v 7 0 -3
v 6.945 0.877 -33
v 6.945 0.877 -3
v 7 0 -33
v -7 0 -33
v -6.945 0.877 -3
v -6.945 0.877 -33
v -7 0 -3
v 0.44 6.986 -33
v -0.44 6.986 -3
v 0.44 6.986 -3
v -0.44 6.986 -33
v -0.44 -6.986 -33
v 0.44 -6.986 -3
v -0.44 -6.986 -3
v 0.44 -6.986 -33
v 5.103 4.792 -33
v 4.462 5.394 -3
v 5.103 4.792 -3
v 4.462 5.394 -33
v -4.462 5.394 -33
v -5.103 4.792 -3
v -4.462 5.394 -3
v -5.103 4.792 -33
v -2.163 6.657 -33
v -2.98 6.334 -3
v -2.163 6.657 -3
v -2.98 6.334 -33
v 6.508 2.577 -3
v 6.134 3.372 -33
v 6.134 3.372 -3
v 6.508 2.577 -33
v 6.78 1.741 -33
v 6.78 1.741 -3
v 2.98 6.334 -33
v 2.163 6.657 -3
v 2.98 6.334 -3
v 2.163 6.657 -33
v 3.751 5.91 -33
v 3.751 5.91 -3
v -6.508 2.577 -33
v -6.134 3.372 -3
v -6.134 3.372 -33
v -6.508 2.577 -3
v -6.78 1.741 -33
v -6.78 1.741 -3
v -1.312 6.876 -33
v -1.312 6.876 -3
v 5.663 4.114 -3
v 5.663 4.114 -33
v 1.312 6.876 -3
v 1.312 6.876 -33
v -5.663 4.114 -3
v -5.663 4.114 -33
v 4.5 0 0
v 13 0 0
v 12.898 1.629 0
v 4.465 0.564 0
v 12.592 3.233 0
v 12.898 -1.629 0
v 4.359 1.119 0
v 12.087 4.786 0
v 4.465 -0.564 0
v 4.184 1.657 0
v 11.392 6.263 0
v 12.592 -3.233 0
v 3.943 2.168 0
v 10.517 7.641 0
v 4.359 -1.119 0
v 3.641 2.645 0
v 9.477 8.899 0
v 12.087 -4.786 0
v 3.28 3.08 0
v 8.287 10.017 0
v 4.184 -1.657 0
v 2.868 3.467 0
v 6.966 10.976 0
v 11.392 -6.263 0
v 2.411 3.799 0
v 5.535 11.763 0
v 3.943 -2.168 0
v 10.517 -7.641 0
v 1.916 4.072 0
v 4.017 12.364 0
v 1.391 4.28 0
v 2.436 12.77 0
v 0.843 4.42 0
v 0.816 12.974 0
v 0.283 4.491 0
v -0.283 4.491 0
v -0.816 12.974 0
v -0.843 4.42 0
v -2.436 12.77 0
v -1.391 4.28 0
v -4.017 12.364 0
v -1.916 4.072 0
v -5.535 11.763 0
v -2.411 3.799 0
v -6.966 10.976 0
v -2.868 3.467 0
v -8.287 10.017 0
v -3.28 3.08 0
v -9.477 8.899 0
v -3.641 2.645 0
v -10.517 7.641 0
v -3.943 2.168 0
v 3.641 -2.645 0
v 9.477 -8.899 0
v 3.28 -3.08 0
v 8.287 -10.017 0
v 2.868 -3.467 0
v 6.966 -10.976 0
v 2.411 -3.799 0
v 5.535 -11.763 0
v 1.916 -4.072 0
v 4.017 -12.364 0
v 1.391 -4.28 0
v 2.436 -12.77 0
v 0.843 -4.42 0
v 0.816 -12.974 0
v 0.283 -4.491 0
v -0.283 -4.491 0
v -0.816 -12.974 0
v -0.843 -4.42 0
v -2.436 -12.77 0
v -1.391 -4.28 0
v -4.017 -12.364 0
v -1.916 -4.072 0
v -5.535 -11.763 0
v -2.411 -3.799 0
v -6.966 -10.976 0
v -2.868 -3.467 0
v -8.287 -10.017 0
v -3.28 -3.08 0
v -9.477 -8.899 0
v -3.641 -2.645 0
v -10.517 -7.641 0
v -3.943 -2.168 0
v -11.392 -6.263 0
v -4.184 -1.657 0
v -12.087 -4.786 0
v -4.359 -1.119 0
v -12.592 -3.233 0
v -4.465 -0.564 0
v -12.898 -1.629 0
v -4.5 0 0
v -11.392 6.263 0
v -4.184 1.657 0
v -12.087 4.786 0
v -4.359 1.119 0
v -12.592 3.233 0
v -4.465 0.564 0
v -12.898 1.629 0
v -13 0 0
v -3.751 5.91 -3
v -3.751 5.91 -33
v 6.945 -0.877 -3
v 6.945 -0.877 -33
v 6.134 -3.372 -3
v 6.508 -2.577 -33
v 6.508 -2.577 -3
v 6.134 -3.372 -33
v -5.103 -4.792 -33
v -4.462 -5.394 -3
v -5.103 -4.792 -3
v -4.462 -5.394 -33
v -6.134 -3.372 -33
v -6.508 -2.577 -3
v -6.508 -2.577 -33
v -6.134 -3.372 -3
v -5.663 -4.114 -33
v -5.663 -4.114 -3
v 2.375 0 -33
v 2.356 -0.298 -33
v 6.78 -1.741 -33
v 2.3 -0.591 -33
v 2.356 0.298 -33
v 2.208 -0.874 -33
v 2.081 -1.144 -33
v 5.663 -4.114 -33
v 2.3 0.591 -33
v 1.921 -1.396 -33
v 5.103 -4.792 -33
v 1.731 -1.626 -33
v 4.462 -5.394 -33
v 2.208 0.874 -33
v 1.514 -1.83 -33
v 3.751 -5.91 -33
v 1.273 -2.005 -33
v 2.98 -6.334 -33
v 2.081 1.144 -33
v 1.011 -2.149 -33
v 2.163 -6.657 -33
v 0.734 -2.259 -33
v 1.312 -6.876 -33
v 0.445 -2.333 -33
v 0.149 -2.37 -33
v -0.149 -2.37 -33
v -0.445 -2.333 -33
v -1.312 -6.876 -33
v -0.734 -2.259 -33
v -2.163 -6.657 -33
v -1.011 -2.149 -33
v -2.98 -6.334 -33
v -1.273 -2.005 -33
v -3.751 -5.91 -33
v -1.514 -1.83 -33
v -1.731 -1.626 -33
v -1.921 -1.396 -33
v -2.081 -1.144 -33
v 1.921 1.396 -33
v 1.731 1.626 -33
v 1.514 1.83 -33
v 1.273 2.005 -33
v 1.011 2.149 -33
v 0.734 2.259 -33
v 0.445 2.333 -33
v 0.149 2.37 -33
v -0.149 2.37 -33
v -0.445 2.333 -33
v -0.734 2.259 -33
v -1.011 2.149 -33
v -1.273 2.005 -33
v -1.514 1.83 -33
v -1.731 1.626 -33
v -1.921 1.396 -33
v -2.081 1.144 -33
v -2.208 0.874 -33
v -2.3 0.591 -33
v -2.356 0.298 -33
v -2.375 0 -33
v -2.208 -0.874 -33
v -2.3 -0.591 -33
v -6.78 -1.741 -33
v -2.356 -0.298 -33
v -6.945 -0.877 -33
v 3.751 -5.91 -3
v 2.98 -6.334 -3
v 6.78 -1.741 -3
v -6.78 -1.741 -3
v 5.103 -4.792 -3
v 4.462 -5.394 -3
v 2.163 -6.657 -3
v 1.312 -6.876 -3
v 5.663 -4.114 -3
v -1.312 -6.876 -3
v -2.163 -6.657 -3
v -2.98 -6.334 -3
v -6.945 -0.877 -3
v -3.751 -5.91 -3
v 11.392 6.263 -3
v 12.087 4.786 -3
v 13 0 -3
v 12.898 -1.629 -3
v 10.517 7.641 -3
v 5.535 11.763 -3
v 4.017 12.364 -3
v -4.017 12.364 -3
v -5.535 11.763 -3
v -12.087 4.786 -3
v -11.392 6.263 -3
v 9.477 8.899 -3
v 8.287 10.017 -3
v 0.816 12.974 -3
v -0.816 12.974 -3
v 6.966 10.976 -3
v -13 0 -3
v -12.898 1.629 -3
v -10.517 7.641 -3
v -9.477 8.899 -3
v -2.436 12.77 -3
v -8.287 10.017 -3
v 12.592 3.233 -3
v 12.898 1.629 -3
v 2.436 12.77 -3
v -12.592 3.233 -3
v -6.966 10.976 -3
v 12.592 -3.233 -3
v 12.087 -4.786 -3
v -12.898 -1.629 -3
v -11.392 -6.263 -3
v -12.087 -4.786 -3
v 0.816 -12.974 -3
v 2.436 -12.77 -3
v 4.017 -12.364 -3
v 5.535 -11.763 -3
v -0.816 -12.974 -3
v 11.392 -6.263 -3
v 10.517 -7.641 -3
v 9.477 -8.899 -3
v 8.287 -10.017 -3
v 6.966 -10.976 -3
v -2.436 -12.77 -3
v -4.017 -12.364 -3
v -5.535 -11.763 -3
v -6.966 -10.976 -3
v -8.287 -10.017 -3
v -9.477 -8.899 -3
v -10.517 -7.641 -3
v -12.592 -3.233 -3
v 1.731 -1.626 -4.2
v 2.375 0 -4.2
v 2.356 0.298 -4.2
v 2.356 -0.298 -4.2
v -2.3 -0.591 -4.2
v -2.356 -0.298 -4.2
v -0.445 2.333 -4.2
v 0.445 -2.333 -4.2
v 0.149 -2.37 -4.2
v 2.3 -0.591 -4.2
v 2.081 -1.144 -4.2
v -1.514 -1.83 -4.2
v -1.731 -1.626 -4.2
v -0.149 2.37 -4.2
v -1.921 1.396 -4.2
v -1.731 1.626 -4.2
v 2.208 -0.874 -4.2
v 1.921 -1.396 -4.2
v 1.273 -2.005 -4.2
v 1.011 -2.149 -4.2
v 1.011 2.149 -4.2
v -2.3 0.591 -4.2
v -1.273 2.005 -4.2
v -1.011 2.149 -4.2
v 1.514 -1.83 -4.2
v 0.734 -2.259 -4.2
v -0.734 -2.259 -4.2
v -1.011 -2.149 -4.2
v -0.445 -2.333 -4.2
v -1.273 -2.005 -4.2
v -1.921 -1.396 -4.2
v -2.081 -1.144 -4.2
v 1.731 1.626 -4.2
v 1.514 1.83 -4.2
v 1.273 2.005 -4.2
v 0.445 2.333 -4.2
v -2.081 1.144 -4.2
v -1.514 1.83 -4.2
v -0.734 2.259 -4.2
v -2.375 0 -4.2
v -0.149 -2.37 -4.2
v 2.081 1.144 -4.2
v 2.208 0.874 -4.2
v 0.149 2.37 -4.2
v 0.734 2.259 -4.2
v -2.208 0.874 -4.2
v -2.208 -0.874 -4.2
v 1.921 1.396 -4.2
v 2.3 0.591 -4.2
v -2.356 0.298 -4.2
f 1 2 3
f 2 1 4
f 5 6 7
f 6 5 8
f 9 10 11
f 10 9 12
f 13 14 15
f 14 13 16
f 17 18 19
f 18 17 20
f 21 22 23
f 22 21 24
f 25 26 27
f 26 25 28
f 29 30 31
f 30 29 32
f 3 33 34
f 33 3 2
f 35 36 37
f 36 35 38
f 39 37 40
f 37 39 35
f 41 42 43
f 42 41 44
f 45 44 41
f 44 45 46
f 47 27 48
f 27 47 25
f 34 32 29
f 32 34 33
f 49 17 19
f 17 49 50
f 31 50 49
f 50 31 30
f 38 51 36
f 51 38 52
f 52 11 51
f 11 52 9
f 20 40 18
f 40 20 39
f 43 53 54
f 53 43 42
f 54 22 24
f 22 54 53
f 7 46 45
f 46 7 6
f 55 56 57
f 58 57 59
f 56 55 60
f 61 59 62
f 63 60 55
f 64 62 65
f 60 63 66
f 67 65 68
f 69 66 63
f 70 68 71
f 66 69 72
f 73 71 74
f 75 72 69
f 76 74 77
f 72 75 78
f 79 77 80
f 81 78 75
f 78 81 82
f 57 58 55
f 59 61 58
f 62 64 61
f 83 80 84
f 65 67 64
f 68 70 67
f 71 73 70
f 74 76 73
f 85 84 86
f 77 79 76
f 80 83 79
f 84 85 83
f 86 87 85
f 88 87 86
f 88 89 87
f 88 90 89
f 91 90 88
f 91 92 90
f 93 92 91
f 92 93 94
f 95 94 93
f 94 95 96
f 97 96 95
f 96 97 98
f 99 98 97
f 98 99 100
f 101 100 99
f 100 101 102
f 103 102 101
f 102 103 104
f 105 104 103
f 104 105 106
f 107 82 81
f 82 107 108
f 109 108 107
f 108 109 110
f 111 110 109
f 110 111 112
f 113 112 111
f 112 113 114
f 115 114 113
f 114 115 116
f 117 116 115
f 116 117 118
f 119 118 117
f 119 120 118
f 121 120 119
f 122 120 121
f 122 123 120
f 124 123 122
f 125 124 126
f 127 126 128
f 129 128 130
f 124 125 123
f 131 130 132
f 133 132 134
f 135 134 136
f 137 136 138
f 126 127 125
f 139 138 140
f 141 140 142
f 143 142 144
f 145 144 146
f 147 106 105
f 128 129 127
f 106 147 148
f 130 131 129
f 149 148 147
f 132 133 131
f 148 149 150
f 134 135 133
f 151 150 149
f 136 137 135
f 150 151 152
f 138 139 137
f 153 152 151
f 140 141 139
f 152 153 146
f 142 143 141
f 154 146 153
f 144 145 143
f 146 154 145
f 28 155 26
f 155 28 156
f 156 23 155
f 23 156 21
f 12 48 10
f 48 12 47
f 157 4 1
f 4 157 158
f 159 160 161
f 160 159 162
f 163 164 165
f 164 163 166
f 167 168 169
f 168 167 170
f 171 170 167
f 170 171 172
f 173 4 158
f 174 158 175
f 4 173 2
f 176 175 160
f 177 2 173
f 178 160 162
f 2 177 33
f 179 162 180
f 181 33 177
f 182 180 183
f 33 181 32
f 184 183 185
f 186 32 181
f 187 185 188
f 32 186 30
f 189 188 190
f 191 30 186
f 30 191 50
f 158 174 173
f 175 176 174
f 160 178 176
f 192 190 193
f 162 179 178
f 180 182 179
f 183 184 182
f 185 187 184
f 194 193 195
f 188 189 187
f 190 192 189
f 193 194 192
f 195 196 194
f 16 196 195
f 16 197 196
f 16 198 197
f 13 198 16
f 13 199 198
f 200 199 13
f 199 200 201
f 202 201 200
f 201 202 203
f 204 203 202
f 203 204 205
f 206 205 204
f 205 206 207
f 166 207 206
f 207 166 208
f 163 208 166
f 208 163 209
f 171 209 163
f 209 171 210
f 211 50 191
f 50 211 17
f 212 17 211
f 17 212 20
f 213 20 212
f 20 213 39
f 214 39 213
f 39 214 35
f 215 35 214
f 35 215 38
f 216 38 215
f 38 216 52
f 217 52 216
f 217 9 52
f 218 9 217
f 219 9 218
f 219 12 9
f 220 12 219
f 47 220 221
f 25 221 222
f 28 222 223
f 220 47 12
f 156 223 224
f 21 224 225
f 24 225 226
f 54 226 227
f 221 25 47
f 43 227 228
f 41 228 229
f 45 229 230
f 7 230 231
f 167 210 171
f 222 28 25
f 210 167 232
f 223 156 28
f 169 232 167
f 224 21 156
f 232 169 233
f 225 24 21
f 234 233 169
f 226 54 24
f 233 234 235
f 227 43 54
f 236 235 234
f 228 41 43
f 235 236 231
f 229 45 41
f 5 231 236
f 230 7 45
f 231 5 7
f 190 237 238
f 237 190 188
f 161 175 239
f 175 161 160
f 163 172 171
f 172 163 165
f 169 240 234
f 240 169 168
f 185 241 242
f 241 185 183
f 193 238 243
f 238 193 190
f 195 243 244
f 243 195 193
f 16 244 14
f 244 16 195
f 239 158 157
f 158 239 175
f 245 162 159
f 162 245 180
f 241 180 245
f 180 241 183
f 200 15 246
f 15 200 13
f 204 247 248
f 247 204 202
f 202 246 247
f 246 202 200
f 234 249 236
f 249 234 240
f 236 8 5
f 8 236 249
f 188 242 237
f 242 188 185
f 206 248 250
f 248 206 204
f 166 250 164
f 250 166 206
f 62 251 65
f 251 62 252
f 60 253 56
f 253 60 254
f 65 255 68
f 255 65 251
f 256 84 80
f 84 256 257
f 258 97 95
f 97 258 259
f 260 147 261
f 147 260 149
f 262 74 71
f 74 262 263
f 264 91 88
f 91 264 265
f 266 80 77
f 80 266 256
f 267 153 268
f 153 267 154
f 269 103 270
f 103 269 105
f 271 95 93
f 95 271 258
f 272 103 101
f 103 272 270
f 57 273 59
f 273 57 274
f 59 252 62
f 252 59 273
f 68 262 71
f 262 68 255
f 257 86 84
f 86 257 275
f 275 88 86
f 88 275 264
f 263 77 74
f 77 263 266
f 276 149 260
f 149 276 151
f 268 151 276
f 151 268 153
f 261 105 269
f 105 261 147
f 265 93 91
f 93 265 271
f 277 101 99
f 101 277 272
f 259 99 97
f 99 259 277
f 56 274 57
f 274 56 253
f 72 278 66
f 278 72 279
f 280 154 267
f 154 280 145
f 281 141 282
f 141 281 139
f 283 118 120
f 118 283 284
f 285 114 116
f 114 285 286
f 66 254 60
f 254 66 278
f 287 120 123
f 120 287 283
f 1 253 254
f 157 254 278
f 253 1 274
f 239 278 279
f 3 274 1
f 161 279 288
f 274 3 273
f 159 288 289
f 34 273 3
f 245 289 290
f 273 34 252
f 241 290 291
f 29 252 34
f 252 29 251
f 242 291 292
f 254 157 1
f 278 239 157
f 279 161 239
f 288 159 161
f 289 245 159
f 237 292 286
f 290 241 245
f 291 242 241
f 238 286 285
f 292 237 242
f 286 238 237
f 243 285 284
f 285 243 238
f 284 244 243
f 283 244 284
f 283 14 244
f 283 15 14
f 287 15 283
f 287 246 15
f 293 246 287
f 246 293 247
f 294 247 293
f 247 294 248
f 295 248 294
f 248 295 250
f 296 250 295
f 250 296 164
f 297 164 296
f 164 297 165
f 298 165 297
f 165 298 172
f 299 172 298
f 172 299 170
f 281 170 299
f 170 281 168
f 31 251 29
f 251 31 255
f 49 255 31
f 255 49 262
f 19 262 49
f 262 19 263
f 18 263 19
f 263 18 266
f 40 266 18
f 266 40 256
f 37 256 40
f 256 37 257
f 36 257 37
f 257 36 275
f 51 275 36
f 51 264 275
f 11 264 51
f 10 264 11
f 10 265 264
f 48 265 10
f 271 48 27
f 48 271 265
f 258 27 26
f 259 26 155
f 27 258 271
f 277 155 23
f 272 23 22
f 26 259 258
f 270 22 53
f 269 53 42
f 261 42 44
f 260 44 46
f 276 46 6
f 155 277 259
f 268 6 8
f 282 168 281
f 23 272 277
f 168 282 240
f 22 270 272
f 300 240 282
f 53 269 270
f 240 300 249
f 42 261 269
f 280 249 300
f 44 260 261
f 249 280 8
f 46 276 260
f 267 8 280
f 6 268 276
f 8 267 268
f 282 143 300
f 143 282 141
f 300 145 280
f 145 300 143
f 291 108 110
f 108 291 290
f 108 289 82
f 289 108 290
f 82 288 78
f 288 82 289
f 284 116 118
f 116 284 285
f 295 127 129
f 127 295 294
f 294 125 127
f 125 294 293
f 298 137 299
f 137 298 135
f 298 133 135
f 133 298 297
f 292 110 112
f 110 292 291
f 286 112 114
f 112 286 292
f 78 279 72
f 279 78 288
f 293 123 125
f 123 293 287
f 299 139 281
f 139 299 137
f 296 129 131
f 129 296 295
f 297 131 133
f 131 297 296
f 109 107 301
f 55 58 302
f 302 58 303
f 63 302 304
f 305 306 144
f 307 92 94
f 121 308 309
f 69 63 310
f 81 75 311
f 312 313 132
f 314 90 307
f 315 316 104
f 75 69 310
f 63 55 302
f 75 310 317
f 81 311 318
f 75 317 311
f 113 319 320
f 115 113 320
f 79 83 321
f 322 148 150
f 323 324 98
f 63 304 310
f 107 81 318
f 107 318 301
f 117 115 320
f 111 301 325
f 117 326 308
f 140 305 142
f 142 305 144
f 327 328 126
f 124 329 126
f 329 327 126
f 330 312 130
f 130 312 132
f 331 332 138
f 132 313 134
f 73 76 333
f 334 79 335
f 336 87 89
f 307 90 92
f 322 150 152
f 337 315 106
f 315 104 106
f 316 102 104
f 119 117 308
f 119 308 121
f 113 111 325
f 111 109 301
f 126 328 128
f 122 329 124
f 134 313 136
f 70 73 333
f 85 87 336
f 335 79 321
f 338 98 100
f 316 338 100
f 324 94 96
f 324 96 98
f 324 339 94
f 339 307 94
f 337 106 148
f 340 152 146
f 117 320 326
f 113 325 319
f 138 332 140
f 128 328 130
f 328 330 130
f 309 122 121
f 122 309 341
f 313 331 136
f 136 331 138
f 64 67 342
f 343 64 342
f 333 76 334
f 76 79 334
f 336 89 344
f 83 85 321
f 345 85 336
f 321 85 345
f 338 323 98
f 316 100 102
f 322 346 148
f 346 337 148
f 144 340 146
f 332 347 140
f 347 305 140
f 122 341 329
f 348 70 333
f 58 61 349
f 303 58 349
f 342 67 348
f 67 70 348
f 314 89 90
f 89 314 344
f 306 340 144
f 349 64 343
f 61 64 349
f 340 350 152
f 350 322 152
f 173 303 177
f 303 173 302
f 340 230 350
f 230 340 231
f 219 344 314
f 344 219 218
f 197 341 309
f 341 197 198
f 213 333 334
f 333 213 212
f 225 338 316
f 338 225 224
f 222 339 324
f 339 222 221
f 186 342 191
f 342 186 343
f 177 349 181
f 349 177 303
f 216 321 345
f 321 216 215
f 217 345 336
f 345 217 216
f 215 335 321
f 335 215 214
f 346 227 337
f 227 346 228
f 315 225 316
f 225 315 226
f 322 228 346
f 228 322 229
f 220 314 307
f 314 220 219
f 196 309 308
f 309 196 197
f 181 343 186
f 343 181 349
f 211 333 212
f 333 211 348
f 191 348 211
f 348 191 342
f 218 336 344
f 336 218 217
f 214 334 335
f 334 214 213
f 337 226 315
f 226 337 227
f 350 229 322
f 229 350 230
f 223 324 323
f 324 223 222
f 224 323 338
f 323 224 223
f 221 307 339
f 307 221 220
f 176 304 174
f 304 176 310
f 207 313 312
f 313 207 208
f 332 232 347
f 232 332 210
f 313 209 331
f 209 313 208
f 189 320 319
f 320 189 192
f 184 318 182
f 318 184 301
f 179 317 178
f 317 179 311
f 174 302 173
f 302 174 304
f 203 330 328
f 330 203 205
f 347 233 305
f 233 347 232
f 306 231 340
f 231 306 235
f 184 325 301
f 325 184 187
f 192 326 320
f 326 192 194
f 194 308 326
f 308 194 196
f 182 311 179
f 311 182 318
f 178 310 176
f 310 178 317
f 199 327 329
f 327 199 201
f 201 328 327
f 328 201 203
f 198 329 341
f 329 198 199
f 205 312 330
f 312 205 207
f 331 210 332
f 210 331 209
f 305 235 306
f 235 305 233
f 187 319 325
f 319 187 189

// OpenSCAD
$fn = 50;


difference() {
	union() {
		translate(v = [0, 0, -33.0000000000]) {
			cylinder(h = 33, r = 7.0000000000);
		}
		translate(v = [0, 0, -3.0000000000]) {
			cylinder(h = 3, r = 13.0000000000);
		}
	}
	union() {
		translate(v = [0, 0, 0]) {
			rotate(a = [0, 0, 0]) {
				difference() {
					union() {
						#translate(v = [0, 0, -33.0000000000]) {
							cylinder(h = 33, r = 2.2500000000);
						}
						#translate(v = [0, 0, -4.2000000000]) {
							cylinder(h = 4.2000000000, r1 = 2.3750000000, r2 = 4.5000000000);
						}
						#translate(v = [0, 0, -33.0000000000]) {
							cylinder(h = 33, r = 2.3750000000);
						}
						#translate(v = [0, 0, -33.0000000000]) {
							cylinder(h = 33, r = 2.2500000000);
						}
					}
					union();
				}
			}
		}
	}
}
